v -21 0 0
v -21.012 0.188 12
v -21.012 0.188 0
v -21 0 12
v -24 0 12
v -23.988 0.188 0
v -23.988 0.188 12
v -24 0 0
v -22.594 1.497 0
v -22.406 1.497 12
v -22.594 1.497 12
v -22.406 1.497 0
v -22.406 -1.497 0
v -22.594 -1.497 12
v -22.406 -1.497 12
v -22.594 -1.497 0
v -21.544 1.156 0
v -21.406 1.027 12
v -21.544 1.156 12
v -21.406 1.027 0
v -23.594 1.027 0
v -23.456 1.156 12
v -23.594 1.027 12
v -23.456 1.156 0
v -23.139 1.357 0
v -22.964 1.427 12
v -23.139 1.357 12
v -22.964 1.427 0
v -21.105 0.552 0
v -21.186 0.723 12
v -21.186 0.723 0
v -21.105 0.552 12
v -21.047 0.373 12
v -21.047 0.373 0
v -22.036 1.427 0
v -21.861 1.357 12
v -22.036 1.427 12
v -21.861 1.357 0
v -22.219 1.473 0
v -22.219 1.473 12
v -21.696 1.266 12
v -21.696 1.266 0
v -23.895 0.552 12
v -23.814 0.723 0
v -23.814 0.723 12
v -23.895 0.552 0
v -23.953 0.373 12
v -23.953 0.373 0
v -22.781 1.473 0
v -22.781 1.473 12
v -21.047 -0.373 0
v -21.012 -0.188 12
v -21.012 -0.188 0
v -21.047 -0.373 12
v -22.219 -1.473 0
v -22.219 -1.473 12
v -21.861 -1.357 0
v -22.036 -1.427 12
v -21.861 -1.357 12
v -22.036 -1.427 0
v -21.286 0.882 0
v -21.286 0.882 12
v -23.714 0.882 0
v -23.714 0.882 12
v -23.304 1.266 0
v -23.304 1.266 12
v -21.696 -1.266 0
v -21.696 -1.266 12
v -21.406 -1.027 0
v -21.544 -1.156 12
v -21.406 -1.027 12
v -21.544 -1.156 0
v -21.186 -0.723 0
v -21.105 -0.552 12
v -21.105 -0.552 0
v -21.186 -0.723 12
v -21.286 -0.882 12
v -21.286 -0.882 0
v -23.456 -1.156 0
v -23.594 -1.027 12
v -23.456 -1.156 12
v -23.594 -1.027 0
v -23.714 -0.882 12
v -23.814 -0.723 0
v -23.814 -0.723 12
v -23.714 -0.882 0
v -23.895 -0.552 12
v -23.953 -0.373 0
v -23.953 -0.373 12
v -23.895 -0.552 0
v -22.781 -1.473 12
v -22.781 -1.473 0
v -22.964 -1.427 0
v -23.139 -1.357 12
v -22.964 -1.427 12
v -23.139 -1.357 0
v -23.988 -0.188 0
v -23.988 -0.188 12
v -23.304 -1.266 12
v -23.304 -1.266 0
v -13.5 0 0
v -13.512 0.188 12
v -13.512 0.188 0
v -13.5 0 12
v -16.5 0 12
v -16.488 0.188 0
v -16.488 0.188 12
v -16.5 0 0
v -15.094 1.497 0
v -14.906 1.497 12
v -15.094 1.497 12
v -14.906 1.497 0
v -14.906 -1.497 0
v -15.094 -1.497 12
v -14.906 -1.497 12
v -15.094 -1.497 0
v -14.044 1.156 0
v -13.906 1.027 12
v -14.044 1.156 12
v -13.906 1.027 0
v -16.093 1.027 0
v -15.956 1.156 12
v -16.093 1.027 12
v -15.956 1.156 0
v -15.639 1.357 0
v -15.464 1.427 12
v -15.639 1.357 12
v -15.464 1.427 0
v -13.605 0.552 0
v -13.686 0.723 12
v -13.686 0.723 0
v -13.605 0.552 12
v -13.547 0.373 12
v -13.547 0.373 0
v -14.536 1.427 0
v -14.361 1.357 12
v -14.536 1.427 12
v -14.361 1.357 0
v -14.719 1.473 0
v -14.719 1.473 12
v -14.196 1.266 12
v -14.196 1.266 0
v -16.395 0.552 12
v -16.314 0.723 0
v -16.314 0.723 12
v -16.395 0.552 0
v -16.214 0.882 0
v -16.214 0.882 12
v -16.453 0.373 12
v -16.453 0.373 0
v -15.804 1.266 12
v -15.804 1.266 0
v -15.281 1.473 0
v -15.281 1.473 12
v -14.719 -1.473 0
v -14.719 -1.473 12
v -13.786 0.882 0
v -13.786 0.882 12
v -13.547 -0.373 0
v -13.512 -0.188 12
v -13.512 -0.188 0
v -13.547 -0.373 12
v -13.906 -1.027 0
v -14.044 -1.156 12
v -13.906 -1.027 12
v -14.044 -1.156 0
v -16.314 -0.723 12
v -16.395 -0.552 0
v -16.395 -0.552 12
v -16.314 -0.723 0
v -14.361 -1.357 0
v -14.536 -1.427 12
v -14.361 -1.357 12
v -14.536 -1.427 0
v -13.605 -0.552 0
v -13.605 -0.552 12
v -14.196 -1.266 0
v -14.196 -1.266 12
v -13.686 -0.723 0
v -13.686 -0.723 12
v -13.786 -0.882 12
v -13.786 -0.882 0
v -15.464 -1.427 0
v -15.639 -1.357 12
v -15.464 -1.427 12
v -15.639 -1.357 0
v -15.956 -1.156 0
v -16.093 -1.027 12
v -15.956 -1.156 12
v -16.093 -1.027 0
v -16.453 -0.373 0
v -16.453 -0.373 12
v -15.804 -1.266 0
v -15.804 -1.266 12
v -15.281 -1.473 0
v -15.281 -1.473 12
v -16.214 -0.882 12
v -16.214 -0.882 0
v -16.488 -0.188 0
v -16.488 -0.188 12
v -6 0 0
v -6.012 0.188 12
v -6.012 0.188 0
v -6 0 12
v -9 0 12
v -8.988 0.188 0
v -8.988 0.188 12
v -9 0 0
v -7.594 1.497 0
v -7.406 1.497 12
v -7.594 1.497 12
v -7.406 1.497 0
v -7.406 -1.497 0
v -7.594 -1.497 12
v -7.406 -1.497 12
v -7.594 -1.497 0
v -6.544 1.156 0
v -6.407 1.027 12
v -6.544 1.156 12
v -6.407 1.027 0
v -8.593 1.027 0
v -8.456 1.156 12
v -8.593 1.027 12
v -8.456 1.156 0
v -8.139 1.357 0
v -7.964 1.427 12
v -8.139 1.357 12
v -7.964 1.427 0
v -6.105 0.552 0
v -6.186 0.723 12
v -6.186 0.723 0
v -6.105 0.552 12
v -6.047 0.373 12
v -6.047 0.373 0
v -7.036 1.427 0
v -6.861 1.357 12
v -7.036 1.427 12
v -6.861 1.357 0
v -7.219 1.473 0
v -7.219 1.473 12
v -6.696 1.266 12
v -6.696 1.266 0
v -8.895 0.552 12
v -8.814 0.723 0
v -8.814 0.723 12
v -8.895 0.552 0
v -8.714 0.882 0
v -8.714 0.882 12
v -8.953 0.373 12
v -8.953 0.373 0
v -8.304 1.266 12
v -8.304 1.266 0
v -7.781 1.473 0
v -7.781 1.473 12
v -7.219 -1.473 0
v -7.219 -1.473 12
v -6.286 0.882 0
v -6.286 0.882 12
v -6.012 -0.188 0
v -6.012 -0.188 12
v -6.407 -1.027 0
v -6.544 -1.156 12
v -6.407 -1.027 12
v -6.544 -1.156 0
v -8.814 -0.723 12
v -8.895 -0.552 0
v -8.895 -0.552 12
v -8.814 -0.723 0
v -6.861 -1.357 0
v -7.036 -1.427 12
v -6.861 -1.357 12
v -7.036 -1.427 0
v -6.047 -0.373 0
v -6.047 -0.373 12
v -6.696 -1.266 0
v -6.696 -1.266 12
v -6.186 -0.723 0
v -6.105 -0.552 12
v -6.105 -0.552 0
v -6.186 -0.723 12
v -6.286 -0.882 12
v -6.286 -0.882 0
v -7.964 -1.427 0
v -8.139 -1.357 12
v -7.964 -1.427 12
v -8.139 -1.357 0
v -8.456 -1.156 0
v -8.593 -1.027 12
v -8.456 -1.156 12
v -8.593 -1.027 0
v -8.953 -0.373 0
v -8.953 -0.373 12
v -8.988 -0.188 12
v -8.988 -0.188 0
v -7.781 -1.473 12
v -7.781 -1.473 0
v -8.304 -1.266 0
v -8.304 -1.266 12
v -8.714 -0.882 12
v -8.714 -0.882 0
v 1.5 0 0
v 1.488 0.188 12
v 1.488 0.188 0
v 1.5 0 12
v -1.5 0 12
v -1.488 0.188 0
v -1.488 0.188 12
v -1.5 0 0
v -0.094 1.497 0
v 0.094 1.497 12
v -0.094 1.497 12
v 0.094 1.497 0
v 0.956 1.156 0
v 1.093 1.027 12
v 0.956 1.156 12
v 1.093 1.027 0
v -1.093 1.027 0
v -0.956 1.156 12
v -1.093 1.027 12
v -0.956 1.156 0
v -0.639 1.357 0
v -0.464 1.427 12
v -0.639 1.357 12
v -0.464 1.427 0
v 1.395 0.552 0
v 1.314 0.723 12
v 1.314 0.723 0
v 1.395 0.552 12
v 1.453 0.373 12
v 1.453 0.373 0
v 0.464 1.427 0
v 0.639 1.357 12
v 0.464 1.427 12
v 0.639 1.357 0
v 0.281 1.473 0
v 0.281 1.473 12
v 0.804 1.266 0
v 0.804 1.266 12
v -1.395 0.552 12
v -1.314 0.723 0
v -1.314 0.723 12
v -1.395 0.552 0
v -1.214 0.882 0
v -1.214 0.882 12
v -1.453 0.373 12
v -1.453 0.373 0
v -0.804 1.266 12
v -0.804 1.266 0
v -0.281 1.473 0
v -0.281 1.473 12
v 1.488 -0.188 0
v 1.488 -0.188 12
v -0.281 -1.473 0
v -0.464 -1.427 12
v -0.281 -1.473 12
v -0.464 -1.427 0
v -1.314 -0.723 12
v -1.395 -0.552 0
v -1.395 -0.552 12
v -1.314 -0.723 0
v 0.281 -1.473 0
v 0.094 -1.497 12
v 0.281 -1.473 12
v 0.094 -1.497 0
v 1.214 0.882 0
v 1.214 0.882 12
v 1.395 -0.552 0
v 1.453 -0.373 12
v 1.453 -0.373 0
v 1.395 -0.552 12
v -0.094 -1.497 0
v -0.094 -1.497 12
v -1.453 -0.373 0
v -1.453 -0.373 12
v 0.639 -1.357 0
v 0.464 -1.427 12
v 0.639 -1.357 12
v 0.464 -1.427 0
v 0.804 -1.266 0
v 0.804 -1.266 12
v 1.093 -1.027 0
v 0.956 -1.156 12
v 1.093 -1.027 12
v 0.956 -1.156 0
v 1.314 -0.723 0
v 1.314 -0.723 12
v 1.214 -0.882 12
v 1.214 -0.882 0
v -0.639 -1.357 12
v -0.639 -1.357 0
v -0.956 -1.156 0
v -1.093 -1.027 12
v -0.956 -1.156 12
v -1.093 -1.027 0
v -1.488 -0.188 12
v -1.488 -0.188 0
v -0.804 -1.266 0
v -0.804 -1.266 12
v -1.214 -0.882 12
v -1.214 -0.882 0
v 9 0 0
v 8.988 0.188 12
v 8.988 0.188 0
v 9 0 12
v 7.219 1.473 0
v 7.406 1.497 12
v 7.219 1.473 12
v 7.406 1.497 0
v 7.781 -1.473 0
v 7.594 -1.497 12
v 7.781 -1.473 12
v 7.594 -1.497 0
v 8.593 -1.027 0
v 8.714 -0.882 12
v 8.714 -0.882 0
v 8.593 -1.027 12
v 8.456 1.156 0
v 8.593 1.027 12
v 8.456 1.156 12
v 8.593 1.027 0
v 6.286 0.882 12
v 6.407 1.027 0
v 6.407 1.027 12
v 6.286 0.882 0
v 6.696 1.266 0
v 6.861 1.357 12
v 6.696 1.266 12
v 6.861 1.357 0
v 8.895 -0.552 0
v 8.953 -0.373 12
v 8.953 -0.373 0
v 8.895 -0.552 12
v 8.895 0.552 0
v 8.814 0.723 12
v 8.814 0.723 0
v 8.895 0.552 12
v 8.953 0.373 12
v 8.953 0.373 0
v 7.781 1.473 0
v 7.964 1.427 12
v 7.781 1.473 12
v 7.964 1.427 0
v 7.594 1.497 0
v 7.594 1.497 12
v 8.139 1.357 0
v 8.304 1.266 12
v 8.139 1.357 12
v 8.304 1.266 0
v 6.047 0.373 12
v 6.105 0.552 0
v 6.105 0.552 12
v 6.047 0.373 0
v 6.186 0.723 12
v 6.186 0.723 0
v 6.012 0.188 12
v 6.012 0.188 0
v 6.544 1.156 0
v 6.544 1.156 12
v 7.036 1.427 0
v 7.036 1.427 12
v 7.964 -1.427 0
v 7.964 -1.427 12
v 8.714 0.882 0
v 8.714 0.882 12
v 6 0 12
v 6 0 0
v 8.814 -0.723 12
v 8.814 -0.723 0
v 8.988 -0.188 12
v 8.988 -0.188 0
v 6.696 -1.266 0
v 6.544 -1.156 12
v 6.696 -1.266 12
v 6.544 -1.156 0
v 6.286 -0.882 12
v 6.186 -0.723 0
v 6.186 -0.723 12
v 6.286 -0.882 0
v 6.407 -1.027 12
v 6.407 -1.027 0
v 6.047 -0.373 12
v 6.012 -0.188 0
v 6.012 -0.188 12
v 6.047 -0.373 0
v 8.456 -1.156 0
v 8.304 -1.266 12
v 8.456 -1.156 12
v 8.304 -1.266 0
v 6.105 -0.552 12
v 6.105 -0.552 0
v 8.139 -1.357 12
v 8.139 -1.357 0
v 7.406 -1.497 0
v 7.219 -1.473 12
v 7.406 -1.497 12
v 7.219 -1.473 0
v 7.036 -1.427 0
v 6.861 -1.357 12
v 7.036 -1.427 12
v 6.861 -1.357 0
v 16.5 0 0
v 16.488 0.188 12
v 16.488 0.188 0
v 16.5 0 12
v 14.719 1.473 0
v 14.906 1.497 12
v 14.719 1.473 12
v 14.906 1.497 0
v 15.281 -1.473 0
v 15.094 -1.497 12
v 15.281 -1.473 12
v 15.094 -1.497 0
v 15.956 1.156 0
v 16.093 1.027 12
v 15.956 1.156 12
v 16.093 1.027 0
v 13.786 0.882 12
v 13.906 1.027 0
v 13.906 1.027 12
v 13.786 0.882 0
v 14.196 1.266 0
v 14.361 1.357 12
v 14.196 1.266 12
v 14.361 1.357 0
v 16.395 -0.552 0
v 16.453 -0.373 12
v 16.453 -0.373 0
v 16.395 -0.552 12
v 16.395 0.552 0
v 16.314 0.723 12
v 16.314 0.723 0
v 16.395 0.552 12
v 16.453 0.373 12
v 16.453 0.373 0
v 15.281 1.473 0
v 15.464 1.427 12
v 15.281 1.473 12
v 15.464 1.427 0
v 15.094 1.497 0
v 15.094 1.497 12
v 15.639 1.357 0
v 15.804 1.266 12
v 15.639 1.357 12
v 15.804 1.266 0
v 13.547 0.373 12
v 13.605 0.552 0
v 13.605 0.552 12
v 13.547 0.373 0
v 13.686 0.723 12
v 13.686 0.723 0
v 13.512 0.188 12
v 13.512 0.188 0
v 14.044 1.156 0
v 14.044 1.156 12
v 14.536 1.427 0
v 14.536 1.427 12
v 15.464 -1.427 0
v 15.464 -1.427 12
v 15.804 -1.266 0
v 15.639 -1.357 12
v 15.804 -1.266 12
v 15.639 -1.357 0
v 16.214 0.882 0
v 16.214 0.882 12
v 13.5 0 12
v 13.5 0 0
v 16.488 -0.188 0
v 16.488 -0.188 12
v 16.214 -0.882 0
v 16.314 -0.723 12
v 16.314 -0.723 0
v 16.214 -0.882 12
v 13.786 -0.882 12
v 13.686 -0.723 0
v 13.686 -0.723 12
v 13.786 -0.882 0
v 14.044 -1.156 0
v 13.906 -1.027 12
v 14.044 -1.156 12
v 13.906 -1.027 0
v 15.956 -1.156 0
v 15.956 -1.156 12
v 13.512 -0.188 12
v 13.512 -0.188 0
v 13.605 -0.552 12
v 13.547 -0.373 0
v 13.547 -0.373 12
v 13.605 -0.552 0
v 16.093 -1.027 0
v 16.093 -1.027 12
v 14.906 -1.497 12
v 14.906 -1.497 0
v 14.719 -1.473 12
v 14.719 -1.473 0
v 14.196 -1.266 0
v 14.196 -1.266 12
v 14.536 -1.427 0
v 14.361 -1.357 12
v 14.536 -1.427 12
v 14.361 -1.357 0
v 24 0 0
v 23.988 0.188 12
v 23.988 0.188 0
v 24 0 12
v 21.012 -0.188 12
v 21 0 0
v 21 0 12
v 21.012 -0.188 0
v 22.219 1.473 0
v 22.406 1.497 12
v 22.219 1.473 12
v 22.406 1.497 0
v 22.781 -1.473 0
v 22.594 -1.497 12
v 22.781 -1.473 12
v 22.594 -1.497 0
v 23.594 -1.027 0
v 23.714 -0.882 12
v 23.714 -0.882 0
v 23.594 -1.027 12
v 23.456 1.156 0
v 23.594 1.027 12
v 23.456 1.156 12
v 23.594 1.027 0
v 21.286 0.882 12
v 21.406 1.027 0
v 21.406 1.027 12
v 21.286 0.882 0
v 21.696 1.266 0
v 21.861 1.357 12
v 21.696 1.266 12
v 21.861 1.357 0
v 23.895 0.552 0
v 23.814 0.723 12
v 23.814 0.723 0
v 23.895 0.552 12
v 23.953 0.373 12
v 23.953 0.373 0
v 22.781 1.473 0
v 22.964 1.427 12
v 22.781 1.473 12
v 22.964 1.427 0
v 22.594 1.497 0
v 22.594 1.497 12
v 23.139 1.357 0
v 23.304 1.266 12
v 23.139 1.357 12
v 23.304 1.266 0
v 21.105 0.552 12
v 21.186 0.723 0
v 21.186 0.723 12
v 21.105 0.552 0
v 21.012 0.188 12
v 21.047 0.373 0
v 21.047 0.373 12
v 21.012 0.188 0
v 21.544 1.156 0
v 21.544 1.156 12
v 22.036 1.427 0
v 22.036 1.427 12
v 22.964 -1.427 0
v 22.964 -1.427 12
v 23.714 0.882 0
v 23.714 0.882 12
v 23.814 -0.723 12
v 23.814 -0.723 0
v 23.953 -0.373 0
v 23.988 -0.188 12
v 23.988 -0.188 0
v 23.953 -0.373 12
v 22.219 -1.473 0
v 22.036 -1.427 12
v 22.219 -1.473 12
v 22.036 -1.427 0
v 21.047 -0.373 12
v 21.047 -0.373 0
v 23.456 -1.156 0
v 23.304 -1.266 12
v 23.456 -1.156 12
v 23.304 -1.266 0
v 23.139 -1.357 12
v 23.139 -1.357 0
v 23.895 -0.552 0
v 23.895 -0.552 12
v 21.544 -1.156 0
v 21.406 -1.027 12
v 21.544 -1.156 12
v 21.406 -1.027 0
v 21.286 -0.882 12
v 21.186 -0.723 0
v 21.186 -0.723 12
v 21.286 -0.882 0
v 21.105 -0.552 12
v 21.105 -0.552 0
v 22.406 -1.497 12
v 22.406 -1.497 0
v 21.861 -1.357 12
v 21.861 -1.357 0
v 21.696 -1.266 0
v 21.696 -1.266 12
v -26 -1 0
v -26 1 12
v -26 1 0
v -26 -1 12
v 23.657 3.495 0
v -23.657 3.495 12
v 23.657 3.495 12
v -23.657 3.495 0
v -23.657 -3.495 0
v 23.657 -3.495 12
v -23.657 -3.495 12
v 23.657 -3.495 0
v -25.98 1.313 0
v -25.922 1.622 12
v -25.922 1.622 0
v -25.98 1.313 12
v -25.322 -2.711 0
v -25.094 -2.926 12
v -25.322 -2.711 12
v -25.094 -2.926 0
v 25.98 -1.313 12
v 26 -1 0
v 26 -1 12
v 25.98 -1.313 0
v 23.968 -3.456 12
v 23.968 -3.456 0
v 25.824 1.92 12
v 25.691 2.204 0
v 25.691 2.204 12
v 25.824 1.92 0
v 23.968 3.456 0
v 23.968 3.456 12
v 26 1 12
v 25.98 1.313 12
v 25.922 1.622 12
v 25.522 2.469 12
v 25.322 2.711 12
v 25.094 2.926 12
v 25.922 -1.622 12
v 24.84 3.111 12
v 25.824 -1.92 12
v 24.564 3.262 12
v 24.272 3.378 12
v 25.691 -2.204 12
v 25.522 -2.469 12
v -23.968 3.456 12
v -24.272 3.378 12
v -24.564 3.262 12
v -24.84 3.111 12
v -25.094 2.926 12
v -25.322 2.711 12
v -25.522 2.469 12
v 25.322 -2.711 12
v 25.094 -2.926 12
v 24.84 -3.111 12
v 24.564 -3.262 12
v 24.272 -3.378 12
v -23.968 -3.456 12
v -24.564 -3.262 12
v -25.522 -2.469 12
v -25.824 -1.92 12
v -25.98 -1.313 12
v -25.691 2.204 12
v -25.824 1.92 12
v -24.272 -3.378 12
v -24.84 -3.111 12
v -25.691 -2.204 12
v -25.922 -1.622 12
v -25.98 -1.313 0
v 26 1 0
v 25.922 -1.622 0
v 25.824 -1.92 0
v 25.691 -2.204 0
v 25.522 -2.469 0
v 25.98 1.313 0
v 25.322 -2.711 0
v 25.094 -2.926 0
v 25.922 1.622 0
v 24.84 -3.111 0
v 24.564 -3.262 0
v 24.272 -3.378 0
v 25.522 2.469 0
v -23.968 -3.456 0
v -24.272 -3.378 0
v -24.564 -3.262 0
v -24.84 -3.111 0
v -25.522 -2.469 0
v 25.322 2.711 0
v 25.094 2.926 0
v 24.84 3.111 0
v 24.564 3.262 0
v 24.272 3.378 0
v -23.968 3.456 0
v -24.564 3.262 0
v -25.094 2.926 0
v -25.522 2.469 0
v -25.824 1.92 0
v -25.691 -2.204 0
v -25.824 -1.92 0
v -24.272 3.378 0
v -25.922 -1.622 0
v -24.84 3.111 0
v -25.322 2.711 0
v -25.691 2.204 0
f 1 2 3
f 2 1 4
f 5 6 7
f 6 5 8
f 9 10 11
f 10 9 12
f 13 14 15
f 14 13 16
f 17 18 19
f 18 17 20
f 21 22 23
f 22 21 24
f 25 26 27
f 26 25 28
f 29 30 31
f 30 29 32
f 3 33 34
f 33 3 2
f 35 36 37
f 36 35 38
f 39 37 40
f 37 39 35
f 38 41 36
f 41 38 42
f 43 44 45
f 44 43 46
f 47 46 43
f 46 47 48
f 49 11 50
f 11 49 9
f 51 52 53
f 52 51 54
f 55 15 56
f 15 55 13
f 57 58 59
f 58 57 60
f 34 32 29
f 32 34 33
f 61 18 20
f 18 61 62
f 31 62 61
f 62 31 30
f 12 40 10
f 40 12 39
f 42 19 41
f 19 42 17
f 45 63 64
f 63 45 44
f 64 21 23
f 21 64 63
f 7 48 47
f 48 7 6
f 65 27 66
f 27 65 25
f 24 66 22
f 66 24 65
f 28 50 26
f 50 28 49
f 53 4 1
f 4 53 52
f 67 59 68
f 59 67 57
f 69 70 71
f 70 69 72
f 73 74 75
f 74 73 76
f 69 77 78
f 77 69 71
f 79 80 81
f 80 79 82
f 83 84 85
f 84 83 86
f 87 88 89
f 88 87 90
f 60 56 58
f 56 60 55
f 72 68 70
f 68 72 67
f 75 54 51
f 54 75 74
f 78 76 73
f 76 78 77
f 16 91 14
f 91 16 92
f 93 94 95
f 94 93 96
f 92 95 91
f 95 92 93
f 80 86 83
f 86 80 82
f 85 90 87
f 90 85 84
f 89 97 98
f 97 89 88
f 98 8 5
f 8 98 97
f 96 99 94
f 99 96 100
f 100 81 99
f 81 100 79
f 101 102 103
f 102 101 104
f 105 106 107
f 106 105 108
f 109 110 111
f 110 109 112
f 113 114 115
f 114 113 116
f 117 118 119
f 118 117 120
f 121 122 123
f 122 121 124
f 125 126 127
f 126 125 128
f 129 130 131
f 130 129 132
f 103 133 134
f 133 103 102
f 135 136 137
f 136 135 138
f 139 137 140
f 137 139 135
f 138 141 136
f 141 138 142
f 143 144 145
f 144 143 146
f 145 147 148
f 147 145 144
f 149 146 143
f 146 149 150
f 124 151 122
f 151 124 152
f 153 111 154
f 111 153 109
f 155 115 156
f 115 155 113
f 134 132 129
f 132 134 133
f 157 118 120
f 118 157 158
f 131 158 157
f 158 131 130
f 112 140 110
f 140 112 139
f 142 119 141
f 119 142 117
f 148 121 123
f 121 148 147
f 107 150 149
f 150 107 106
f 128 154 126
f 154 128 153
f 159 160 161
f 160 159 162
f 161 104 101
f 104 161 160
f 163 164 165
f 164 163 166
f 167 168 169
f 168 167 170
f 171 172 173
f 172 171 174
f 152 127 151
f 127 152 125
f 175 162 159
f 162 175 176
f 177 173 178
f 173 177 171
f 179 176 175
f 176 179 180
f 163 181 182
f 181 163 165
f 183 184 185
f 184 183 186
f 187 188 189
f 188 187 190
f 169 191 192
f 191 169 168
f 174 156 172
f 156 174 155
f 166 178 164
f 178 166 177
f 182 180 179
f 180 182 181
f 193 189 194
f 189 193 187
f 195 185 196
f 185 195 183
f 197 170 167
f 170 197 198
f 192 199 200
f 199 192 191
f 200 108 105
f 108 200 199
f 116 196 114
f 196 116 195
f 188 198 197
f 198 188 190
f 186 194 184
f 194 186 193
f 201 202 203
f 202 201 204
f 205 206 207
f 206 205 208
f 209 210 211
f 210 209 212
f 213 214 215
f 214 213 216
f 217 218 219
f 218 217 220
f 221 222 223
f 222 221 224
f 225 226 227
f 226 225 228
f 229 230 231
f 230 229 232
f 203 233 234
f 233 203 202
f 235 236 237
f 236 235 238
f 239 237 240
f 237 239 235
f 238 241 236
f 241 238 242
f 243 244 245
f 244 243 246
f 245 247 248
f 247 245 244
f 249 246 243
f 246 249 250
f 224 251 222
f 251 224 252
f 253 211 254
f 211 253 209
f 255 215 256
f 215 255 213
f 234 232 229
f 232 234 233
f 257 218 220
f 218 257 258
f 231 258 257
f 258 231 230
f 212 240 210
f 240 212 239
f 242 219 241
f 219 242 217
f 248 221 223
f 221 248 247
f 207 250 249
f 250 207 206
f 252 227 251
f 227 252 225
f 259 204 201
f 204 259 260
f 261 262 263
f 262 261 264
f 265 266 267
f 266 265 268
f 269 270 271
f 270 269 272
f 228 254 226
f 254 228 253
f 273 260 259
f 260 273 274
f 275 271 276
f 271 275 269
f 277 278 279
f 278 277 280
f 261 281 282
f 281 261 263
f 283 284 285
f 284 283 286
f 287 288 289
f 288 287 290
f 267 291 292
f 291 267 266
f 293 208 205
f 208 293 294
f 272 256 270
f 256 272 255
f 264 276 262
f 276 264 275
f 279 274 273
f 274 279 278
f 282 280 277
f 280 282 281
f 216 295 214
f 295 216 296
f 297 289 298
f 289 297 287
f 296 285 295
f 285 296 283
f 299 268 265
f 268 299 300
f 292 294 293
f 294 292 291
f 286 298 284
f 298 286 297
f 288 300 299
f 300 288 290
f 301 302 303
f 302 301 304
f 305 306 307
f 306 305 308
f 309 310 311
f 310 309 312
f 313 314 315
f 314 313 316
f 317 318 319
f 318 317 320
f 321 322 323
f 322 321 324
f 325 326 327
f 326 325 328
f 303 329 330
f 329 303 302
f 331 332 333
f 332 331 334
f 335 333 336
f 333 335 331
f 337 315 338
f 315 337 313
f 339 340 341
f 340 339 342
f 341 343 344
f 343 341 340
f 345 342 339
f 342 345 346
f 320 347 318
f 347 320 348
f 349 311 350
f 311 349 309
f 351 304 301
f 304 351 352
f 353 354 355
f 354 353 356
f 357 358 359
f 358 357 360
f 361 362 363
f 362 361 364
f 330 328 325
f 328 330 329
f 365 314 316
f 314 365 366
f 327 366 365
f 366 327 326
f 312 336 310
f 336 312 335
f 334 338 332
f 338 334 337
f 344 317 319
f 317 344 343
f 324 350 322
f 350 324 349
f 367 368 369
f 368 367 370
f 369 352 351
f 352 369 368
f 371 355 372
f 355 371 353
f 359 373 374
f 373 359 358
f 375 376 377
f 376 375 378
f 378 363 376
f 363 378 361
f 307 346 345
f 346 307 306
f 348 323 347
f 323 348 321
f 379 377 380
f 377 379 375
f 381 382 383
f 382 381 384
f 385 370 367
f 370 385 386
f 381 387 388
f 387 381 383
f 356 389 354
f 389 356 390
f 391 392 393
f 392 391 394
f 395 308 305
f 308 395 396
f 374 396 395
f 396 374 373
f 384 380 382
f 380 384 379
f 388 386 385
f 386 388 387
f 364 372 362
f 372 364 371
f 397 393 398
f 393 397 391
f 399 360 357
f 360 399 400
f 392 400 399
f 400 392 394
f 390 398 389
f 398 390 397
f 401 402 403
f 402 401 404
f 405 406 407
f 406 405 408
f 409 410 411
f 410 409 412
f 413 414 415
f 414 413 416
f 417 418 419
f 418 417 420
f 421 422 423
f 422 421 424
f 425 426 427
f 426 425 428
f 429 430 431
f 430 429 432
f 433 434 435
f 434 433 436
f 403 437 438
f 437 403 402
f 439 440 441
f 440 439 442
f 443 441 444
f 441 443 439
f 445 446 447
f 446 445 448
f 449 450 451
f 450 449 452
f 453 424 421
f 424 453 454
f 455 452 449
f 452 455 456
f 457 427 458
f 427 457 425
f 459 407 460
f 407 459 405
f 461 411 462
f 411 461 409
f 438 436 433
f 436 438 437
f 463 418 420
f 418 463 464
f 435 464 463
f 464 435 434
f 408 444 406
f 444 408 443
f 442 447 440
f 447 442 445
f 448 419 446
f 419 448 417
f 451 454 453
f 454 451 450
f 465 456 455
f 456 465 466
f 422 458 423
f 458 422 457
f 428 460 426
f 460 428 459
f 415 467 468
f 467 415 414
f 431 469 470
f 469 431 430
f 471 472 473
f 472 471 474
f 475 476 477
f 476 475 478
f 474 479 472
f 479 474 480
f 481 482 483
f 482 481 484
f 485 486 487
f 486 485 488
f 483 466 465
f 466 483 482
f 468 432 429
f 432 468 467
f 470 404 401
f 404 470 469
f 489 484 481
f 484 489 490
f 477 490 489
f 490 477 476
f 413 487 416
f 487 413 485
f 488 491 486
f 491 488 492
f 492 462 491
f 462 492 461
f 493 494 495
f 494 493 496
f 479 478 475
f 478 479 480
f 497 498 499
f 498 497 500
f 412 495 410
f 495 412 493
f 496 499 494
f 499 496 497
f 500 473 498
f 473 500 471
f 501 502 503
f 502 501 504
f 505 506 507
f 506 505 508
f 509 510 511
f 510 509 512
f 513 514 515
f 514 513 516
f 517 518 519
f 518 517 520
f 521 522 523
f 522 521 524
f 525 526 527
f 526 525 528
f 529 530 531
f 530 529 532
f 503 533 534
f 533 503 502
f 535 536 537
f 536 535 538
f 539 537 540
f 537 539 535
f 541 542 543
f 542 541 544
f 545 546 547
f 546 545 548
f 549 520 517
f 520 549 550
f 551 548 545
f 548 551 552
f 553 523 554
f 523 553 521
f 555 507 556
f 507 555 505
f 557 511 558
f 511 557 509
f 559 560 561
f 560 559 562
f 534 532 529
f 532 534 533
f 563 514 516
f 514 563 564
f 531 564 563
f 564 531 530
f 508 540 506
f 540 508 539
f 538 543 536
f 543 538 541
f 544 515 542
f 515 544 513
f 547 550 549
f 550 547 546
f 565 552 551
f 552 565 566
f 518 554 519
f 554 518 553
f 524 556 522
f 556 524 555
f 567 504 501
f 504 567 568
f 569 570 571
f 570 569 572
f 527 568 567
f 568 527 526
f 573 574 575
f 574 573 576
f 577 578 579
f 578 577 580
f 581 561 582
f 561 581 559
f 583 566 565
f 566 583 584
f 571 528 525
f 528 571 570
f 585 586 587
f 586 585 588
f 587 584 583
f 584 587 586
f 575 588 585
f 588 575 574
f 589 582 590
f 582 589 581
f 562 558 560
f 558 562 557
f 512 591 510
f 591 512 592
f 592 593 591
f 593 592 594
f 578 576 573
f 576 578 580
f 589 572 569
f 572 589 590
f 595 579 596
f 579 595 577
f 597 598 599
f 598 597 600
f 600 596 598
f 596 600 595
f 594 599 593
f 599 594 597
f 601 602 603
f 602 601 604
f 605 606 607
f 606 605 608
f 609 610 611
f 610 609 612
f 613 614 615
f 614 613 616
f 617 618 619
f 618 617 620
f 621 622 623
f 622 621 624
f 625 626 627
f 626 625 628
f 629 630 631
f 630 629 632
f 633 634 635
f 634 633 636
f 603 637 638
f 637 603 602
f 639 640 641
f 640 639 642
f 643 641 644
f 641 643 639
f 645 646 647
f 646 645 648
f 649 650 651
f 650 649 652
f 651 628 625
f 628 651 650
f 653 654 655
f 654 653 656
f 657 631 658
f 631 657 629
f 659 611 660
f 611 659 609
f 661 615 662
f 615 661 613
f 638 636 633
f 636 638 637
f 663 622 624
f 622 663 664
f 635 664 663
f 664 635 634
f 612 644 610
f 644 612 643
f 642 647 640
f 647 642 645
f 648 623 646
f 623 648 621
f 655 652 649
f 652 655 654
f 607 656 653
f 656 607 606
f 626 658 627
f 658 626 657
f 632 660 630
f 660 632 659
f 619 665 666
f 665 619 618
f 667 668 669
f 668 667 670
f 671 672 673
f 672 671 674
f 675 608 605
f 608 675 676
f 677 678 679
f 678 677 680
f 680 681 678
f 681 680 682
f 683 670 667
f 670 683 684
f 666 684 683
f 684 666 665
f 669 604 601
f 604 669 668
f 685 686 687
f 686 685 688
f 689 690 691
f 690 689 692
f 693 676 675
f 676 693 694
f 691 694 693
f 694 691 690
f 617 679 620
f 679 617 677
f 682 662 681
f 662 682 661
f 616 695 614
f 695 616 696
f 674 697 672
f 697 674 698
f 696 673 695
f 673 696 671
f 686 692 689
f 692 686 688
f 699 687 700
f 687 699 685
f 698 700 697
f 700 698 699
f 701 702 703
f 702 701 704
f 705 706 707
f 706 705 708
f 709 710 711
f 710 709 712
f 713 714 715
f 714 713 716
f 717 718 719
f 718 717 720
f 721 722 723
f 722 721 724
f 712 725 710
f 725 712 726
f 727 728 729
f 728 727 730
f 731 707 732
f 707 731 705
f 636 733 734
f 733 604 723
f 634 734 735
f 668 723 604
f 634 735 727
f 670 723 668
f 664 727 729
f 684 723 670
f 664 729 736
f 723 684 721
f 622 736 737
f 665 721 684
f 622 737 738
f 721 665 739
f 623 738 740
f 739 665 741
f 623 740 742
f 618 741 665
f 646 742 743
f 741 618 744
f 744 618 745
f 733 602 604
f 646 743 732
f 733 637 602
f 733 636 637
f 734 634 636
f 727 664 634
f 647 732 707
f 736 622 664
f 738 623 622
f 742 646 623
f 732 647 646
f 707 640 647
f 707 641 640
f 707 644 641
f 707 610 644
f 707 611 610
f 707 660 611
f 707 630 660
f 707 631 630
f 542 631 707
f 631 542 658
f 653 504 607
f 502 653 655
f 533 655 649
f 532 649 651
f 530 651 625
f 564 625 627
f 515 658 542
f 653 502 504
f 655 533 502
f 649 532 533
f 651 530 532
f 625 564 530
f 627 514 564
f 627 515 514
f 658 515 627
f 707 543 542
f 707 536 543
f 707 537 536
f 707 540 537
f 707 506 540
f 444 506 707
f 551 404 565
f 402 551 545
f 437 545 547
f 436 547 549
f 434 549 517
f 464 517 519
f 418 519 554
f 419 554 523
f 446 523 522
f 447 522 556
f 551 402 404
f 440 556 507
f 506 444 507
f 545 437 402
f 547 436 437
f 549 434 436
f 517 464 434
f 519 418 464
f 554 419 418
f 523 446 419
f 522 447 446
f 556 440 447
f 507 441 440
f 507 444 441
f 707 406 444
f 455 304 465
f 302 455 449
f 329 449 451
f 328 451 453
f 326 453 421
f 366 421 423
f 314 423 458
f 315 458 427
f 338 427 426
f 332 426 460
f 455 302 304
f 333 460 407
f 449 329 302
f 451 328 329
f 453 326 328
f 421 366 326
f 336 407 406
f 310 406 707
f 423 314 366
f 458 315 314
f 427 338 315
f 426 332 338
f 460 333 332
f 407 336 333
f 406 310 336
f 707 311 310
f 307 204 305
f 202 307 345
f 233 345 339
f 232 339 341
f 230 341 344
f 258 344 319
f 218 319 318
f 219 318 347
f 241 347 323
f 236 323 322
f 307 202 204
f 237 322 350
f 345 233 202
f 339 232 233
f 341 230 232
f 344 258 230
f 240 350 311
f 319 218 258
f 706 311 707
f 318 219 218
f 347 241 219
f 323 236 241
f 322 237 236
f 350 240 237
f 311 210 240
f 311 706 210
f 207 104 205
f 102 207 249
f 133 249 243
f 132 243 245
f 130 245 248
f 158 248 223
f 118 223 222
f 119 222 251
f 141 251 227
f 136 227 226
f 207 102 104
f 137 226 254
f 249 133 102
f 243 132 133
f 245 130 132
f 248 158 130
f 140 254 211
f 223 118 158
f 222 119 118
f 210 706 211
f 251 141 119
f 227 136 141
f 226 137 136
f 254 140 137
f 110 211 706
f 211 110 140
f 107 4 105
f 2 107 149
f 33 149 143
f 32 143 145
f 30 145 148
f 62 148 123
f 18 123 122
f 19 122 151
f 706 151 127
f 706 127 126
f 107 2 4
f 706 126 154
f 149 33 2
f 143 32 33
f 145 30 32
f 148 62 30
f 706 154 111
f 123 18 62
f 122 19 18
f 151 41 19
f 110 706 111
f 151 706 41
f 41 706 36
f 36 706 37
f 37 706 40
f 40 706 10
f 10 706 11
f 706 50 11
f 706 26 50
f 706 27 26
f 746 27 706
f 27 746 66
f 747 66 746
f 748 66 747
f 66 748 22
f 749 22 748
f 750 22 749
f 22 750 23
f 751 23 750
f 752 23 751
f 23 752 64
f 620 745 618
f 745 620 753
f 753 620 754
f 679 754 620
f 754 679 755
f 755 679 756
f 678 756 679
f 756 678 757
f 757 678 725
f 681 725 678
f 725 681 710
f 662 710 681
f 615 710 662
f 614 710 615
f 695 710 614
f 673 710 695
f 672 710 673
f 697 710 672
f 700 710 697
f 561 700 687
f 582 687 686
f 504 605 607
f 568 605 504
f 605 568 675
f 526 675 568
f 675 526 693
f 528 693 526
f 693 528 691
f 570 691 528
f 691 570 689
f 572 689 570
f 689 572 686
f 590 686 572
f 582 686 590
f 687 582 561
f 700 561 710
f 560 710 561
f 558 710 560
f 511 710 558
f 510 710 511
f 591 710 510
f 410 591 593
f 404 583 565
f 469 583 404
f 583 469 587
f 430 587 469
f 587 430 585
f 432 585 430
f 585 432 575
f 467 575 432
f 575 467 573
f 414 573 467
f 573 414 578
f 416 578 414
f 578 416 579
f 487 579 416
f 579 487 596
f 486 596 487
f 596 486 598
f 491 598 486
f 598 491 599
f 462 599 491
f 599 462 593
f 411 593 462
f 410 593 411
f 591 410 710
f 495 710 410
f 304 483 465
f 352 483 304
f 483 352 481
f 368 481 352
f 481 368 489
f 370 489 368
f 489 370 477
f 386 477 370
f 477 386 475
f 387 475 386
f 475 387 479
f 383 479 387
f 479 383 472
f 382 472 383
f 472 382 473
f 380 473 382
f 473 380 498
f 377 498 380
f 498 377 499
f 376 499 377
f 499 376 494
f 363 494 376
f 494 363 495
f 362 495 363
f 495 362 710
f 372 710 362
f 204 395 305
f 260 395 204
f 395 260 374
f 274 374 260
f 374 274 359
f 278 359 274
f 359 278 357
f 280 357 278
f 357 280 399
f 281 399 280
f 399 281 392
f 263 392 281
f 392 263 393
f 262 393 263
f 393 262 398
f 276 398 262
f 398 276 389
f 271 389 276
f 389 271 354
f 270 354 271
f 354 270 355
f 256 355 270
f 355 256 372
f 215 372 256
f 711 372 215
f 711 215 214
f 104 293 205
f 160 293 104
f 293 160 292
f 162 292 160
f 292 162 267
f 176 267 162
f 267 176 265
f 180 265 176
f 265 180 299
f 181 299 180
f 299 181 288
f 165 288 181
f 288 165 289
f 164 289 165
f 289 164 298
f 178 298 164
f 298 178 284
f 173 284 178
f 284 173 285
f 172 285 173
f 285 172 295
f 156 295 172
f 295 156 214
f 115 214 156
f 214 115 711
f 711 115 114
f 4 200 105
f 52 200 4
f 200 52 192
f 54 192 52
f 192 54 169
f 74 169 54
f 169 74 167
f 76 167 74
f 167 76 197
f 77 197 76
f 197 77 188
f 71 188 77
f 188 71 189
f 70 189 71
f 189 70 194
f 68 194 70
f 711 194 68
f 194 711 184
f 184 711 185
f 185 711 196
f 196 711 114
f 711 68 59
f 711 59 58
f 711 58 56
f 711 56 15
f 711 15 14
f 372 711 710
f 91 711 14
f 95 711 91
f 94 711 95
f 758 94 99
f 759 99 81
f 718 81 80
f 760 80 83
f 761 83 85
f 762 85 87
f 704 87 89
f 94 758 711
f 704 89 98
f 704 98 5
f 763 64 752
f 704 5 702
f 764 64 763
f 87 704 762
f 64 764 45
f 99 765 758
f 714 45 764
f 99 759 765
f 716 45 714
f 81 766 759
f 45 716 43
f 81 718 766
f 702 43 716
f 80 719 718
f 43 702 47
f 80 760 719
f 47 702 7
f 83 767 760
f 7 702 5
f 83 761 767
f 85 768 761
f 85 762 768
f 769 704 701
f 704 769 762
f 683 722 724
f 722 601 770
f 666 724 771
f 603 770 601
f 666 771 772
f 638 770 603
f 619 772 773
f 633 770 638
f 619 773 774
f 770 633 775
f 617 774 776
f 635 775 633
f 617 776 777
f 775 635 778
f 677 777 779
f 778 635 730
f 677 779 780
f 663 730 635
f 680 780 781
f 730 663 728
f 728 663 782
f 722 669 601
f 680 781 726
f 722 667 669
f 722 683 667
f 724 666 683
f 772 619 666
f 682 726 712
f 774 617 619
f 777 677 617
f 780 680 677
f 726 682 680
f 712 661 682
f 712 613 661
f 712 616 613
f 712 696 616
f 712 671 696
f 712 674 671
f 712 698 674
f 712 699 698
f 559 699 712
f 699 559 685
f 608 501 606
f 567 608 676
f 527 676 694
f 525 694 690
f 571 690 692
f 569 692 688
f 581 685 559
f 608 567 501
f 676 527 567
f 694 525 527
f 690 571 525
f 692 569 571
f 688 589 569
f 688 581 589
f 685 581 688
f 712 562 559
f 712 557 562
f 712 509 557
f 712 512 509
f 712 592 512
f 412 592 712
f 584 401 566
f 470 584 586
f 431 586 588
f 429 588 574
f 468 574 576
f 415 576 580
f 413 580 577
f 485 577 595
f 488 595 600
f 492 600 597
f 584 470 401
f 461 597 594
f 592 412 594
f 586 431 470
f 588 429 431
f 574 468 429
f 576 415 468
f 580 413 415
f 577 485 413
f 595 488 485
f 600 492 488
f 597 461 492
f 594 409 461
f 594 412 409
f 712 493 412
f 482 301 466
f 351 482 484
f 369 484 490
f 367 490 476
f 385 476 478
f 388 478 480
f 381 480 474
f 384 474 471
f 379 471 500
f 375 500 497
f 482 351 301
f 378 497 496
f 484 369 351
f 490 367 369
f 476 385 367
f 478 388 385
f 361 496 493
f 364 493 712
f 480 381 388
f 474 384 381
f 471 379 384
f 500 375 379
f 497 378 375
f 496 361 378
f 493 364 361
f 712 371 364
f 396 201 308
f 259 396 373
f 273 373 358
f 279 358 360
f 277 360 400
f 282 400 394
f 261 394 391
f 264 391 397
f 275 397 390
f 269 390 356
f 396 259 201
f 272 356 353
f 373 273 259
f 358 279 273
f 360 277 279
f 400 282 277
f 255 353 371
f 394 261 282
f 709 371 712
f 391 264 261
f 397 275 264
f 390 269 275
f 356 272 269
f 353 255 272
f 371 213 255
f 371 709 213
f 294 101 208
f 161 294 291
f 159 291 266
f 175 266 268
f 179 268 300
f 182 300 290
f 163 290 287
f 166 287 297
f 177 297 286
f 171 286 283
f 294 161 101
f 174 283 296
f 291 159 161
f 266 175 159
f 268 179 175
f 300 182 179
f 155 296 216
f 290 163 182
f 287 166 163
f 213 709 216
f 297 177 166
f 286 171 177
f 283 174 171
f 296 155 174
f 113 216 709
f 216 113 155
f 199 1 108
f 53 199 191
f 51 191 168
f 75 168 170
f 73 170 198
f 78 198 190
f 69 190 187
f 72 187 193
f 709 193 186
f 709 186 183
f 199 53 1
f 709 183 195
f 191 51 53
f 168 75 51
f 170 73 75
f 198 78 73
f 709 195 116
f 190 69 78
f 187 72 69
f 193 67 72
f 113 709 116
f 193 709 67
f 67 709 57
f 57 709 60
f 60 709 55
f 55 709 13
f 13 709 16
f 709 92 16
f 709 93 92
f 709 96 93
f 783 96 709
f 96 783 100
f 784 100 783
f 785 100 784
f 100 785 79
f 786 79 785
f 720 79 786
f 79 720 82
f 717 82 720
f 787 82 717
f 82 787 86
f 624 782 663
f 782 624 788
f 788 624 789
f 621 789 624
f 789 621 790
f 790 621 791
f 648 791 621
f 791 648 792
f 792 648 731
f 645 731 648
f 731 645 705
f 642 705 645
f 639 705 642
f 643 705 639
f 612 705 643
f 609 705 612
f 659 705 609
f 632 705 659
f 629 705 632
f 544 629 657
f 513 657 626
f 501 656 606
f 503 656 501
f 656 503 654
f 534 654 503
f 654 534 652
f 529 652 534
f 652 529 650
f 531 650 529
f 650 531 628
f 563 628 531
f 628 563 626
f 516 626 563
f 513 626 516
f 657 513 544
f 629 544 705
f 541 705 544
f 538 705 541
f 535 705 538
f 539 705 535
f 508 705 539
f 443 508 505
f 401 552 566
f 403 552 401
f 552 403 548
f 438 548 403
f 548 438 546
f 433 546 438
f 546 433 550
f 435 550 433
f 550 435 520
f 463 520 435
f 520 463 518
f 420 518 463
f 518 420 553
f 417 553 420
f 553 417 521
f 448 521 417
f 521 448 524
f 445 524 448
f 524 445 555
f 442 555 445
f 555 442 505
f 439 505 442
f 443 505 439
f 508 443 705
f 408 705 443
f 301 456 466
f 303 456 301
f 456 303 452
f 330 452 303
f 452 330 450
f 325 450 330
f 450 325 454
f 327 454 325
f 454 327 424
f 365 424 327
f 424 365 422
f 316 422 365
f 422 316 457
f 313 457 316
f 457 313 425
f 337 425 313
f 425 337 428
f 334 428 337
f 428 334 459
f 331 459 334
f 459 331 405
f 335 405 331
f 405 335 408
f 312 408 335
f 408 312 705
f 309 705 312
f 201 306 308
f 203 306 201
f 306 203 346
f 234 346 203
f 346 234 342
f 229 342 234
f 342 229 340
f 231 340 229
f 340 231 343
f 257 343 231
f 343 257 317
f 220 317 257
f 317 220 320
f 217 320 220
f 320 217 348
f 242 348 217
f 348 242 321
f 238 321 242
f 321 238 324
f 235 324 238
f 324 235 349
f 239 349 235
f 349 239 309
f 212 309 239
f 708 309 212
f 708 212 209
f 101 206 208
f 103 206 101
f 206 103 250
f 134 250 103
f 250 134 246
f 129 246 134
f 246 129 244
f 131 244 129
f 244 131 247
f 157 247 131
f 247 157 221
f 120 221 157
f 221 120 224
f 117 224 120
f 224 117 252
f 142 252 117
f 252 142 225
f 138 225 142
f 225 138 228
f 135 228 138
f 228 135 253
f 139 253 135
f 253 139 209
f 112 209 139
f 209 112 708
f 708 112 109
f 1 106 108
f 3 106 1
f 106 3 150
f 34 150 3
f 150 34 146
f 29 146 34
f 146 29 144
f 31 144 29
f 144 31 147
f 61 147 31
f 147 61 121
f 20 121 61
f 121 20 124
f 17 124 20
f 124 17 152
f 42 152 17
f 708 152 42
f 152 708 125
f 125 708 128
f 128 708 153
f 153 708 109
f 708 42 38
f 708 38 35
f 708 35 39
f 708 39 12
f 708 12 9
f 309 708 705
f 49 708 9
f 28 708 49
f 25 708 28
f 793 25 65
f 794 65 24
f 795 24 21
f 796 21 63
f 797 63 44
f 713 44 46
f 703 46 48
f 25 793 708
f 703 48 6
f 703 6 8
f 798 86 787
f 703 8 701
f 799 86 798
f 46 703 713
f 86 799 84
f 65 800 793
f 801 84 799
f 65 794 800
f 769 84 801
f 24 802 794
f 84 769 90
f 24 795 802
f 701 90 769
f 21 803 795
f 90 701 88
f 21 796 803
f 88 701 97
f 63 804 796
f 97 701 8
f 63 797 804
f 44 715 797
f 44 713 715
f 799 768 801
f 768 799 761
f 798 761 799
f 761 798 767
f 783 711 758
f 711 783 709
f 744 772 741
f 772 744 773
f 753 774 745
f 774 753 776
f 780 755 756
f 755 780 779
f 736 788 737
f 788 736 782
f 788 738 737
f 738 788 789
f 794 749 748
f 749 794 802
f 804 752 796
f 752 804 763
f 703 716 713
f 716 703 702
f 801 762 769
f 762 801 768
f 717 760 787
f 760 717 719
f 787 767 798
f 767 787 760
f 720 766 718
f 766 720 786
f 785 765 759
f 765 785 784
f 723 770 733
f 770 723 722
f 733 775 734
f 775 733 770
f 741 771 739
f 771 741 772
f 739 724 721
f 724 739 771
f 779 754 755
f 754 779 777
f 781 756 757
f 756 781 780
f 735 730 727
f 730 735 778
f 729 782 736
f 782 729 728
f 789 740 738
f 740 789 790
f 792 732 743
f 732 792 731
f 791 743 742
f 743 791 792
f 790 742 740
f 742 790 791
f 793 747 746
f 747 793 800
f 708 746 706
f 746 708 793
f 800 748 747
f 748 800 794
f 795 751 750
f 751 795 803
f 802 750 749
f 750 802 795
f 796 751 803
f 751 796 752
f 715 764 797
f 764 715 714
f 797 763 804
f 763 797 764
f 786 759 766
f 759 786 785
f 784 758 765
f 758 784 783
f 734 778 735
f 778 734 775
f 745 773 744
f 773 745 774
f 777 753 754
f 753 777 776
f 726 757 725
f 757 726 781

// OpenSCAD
$fn = 50;


difference() {
	union() {
		translate(v = [0, 0, 0]) {
			rotate(a = [0, 0, 0]) {
				hull() {
					translate(v = [-23.5000000000, 1.0000000000, 0]) {
						rotate(a = [0, 0, 0]) {
							translate(v = [0, 0, 0]) {
								rotate(a = [0, 0, 0]) {
									cylinder(h = 12, r = 2.5000000000);
								}
							}
						}
					}
					translate(v = [23.5000000000, 1.0000000000, 0]) {
						rotate(a = [0, 0, 0]) {
							translate(v = [0, 0, 0]) {
								rotate(a = [0, 0, 0]) {
									cylinder(h = 12, r = 2.5000000000);
								}
							}
						}
					}
					translate(v = [-23.5000000000, -1.0000000000, 0]) {
						rotate(a = [0, 0, 0]) {
							translate(v = [0, 0, 0]) {
								rotate(a = [0, 0, 0]) {
									cylinder(h = 12, r = 2.5000000000);
								}
							}
						}
					}
					translate(v = [23.5000000000, -1.0000000000, 0]) {
						rotate(a = [0, 0, 0]) {
							translate(v = [0, 0, 0]) {
								rotate(a = [0, 0, 0]) {
									cylinder(h = 12, r = 2.5000000000);
								}
							}
						}
					}
				}
			}
		}
	}
	union() {
		translate(v = [-22.5000000000, 0.0000000000, 0]) {
			rotate(a = [0, 0, 0]) {
				translate(v = [0, 0, -50]) {
					rotate(a = [0, 0, 0]) {
						cylinder(h = 100, r = 1.5000000000);
					}
				}
			}
		}
		translate(v = [-15.0000000000, 0.0000000000, 0]) {
			rotate(a = [0, 0, 0]) {
				translate(v = [0, 0, -50]) {
					rotate(a = [0, 0, 0]) {
						cylinder(h = 100, r = 1.5000000000);
					}
				}
			}
		}
		translate(v = [-7.5000000000, 0.0000000000, 0]) {
			rotate(a = [0, 0, 0]) {
				translate(v = [0, 0, -50]) {
					rotate(a = [0, 0, 0]) {
						cylinder(h = 100, r = 1.5000000000);
					}
				}
			}
		}
		translate(v = [0.0000000000, 0.0000000000, 0]) {
			rotate(a = [0, 0, 0]) {
				translate(v = [0, 0, -50]) {
					rotate(a = [0, 0, 0]) {
						cylinder(h = 100, r = 1.5000000000);
					}
				}
			}
		}
		translate(v = [7.5000000000, 0.0000000000, 0]) {
			rotate(a = [0, 0, 0]) {
				translate(v = [0, 0, -50]) {
					rotate(a = [0, 0, 0]) {
						cylinder(h = 100, r = 1.5000000000);
					}
				}
			}
		}
		translate(v = [15.0000000000, 0.0000000000, 0]) {
			rotate(a = [0, 0, 0]) {
				translate(v = [0, 0, -50]) {
					rotate(a = [0, 0, 0]) {
						cylinder(h = 100, r = 1.5000000000);
					}
				}
			}
		}
		translate(v = [22.5000000000, 0.0000000000, 0]) {
			rotate(a = [0, 0, 0]) {
				translate(v = [0, 0, -50]) {
					rotate(a = [0, 0, 0]) {
						cylinder(h = 100, r = 1.5000000000);
					}
				}
			}
		}
	}
}
